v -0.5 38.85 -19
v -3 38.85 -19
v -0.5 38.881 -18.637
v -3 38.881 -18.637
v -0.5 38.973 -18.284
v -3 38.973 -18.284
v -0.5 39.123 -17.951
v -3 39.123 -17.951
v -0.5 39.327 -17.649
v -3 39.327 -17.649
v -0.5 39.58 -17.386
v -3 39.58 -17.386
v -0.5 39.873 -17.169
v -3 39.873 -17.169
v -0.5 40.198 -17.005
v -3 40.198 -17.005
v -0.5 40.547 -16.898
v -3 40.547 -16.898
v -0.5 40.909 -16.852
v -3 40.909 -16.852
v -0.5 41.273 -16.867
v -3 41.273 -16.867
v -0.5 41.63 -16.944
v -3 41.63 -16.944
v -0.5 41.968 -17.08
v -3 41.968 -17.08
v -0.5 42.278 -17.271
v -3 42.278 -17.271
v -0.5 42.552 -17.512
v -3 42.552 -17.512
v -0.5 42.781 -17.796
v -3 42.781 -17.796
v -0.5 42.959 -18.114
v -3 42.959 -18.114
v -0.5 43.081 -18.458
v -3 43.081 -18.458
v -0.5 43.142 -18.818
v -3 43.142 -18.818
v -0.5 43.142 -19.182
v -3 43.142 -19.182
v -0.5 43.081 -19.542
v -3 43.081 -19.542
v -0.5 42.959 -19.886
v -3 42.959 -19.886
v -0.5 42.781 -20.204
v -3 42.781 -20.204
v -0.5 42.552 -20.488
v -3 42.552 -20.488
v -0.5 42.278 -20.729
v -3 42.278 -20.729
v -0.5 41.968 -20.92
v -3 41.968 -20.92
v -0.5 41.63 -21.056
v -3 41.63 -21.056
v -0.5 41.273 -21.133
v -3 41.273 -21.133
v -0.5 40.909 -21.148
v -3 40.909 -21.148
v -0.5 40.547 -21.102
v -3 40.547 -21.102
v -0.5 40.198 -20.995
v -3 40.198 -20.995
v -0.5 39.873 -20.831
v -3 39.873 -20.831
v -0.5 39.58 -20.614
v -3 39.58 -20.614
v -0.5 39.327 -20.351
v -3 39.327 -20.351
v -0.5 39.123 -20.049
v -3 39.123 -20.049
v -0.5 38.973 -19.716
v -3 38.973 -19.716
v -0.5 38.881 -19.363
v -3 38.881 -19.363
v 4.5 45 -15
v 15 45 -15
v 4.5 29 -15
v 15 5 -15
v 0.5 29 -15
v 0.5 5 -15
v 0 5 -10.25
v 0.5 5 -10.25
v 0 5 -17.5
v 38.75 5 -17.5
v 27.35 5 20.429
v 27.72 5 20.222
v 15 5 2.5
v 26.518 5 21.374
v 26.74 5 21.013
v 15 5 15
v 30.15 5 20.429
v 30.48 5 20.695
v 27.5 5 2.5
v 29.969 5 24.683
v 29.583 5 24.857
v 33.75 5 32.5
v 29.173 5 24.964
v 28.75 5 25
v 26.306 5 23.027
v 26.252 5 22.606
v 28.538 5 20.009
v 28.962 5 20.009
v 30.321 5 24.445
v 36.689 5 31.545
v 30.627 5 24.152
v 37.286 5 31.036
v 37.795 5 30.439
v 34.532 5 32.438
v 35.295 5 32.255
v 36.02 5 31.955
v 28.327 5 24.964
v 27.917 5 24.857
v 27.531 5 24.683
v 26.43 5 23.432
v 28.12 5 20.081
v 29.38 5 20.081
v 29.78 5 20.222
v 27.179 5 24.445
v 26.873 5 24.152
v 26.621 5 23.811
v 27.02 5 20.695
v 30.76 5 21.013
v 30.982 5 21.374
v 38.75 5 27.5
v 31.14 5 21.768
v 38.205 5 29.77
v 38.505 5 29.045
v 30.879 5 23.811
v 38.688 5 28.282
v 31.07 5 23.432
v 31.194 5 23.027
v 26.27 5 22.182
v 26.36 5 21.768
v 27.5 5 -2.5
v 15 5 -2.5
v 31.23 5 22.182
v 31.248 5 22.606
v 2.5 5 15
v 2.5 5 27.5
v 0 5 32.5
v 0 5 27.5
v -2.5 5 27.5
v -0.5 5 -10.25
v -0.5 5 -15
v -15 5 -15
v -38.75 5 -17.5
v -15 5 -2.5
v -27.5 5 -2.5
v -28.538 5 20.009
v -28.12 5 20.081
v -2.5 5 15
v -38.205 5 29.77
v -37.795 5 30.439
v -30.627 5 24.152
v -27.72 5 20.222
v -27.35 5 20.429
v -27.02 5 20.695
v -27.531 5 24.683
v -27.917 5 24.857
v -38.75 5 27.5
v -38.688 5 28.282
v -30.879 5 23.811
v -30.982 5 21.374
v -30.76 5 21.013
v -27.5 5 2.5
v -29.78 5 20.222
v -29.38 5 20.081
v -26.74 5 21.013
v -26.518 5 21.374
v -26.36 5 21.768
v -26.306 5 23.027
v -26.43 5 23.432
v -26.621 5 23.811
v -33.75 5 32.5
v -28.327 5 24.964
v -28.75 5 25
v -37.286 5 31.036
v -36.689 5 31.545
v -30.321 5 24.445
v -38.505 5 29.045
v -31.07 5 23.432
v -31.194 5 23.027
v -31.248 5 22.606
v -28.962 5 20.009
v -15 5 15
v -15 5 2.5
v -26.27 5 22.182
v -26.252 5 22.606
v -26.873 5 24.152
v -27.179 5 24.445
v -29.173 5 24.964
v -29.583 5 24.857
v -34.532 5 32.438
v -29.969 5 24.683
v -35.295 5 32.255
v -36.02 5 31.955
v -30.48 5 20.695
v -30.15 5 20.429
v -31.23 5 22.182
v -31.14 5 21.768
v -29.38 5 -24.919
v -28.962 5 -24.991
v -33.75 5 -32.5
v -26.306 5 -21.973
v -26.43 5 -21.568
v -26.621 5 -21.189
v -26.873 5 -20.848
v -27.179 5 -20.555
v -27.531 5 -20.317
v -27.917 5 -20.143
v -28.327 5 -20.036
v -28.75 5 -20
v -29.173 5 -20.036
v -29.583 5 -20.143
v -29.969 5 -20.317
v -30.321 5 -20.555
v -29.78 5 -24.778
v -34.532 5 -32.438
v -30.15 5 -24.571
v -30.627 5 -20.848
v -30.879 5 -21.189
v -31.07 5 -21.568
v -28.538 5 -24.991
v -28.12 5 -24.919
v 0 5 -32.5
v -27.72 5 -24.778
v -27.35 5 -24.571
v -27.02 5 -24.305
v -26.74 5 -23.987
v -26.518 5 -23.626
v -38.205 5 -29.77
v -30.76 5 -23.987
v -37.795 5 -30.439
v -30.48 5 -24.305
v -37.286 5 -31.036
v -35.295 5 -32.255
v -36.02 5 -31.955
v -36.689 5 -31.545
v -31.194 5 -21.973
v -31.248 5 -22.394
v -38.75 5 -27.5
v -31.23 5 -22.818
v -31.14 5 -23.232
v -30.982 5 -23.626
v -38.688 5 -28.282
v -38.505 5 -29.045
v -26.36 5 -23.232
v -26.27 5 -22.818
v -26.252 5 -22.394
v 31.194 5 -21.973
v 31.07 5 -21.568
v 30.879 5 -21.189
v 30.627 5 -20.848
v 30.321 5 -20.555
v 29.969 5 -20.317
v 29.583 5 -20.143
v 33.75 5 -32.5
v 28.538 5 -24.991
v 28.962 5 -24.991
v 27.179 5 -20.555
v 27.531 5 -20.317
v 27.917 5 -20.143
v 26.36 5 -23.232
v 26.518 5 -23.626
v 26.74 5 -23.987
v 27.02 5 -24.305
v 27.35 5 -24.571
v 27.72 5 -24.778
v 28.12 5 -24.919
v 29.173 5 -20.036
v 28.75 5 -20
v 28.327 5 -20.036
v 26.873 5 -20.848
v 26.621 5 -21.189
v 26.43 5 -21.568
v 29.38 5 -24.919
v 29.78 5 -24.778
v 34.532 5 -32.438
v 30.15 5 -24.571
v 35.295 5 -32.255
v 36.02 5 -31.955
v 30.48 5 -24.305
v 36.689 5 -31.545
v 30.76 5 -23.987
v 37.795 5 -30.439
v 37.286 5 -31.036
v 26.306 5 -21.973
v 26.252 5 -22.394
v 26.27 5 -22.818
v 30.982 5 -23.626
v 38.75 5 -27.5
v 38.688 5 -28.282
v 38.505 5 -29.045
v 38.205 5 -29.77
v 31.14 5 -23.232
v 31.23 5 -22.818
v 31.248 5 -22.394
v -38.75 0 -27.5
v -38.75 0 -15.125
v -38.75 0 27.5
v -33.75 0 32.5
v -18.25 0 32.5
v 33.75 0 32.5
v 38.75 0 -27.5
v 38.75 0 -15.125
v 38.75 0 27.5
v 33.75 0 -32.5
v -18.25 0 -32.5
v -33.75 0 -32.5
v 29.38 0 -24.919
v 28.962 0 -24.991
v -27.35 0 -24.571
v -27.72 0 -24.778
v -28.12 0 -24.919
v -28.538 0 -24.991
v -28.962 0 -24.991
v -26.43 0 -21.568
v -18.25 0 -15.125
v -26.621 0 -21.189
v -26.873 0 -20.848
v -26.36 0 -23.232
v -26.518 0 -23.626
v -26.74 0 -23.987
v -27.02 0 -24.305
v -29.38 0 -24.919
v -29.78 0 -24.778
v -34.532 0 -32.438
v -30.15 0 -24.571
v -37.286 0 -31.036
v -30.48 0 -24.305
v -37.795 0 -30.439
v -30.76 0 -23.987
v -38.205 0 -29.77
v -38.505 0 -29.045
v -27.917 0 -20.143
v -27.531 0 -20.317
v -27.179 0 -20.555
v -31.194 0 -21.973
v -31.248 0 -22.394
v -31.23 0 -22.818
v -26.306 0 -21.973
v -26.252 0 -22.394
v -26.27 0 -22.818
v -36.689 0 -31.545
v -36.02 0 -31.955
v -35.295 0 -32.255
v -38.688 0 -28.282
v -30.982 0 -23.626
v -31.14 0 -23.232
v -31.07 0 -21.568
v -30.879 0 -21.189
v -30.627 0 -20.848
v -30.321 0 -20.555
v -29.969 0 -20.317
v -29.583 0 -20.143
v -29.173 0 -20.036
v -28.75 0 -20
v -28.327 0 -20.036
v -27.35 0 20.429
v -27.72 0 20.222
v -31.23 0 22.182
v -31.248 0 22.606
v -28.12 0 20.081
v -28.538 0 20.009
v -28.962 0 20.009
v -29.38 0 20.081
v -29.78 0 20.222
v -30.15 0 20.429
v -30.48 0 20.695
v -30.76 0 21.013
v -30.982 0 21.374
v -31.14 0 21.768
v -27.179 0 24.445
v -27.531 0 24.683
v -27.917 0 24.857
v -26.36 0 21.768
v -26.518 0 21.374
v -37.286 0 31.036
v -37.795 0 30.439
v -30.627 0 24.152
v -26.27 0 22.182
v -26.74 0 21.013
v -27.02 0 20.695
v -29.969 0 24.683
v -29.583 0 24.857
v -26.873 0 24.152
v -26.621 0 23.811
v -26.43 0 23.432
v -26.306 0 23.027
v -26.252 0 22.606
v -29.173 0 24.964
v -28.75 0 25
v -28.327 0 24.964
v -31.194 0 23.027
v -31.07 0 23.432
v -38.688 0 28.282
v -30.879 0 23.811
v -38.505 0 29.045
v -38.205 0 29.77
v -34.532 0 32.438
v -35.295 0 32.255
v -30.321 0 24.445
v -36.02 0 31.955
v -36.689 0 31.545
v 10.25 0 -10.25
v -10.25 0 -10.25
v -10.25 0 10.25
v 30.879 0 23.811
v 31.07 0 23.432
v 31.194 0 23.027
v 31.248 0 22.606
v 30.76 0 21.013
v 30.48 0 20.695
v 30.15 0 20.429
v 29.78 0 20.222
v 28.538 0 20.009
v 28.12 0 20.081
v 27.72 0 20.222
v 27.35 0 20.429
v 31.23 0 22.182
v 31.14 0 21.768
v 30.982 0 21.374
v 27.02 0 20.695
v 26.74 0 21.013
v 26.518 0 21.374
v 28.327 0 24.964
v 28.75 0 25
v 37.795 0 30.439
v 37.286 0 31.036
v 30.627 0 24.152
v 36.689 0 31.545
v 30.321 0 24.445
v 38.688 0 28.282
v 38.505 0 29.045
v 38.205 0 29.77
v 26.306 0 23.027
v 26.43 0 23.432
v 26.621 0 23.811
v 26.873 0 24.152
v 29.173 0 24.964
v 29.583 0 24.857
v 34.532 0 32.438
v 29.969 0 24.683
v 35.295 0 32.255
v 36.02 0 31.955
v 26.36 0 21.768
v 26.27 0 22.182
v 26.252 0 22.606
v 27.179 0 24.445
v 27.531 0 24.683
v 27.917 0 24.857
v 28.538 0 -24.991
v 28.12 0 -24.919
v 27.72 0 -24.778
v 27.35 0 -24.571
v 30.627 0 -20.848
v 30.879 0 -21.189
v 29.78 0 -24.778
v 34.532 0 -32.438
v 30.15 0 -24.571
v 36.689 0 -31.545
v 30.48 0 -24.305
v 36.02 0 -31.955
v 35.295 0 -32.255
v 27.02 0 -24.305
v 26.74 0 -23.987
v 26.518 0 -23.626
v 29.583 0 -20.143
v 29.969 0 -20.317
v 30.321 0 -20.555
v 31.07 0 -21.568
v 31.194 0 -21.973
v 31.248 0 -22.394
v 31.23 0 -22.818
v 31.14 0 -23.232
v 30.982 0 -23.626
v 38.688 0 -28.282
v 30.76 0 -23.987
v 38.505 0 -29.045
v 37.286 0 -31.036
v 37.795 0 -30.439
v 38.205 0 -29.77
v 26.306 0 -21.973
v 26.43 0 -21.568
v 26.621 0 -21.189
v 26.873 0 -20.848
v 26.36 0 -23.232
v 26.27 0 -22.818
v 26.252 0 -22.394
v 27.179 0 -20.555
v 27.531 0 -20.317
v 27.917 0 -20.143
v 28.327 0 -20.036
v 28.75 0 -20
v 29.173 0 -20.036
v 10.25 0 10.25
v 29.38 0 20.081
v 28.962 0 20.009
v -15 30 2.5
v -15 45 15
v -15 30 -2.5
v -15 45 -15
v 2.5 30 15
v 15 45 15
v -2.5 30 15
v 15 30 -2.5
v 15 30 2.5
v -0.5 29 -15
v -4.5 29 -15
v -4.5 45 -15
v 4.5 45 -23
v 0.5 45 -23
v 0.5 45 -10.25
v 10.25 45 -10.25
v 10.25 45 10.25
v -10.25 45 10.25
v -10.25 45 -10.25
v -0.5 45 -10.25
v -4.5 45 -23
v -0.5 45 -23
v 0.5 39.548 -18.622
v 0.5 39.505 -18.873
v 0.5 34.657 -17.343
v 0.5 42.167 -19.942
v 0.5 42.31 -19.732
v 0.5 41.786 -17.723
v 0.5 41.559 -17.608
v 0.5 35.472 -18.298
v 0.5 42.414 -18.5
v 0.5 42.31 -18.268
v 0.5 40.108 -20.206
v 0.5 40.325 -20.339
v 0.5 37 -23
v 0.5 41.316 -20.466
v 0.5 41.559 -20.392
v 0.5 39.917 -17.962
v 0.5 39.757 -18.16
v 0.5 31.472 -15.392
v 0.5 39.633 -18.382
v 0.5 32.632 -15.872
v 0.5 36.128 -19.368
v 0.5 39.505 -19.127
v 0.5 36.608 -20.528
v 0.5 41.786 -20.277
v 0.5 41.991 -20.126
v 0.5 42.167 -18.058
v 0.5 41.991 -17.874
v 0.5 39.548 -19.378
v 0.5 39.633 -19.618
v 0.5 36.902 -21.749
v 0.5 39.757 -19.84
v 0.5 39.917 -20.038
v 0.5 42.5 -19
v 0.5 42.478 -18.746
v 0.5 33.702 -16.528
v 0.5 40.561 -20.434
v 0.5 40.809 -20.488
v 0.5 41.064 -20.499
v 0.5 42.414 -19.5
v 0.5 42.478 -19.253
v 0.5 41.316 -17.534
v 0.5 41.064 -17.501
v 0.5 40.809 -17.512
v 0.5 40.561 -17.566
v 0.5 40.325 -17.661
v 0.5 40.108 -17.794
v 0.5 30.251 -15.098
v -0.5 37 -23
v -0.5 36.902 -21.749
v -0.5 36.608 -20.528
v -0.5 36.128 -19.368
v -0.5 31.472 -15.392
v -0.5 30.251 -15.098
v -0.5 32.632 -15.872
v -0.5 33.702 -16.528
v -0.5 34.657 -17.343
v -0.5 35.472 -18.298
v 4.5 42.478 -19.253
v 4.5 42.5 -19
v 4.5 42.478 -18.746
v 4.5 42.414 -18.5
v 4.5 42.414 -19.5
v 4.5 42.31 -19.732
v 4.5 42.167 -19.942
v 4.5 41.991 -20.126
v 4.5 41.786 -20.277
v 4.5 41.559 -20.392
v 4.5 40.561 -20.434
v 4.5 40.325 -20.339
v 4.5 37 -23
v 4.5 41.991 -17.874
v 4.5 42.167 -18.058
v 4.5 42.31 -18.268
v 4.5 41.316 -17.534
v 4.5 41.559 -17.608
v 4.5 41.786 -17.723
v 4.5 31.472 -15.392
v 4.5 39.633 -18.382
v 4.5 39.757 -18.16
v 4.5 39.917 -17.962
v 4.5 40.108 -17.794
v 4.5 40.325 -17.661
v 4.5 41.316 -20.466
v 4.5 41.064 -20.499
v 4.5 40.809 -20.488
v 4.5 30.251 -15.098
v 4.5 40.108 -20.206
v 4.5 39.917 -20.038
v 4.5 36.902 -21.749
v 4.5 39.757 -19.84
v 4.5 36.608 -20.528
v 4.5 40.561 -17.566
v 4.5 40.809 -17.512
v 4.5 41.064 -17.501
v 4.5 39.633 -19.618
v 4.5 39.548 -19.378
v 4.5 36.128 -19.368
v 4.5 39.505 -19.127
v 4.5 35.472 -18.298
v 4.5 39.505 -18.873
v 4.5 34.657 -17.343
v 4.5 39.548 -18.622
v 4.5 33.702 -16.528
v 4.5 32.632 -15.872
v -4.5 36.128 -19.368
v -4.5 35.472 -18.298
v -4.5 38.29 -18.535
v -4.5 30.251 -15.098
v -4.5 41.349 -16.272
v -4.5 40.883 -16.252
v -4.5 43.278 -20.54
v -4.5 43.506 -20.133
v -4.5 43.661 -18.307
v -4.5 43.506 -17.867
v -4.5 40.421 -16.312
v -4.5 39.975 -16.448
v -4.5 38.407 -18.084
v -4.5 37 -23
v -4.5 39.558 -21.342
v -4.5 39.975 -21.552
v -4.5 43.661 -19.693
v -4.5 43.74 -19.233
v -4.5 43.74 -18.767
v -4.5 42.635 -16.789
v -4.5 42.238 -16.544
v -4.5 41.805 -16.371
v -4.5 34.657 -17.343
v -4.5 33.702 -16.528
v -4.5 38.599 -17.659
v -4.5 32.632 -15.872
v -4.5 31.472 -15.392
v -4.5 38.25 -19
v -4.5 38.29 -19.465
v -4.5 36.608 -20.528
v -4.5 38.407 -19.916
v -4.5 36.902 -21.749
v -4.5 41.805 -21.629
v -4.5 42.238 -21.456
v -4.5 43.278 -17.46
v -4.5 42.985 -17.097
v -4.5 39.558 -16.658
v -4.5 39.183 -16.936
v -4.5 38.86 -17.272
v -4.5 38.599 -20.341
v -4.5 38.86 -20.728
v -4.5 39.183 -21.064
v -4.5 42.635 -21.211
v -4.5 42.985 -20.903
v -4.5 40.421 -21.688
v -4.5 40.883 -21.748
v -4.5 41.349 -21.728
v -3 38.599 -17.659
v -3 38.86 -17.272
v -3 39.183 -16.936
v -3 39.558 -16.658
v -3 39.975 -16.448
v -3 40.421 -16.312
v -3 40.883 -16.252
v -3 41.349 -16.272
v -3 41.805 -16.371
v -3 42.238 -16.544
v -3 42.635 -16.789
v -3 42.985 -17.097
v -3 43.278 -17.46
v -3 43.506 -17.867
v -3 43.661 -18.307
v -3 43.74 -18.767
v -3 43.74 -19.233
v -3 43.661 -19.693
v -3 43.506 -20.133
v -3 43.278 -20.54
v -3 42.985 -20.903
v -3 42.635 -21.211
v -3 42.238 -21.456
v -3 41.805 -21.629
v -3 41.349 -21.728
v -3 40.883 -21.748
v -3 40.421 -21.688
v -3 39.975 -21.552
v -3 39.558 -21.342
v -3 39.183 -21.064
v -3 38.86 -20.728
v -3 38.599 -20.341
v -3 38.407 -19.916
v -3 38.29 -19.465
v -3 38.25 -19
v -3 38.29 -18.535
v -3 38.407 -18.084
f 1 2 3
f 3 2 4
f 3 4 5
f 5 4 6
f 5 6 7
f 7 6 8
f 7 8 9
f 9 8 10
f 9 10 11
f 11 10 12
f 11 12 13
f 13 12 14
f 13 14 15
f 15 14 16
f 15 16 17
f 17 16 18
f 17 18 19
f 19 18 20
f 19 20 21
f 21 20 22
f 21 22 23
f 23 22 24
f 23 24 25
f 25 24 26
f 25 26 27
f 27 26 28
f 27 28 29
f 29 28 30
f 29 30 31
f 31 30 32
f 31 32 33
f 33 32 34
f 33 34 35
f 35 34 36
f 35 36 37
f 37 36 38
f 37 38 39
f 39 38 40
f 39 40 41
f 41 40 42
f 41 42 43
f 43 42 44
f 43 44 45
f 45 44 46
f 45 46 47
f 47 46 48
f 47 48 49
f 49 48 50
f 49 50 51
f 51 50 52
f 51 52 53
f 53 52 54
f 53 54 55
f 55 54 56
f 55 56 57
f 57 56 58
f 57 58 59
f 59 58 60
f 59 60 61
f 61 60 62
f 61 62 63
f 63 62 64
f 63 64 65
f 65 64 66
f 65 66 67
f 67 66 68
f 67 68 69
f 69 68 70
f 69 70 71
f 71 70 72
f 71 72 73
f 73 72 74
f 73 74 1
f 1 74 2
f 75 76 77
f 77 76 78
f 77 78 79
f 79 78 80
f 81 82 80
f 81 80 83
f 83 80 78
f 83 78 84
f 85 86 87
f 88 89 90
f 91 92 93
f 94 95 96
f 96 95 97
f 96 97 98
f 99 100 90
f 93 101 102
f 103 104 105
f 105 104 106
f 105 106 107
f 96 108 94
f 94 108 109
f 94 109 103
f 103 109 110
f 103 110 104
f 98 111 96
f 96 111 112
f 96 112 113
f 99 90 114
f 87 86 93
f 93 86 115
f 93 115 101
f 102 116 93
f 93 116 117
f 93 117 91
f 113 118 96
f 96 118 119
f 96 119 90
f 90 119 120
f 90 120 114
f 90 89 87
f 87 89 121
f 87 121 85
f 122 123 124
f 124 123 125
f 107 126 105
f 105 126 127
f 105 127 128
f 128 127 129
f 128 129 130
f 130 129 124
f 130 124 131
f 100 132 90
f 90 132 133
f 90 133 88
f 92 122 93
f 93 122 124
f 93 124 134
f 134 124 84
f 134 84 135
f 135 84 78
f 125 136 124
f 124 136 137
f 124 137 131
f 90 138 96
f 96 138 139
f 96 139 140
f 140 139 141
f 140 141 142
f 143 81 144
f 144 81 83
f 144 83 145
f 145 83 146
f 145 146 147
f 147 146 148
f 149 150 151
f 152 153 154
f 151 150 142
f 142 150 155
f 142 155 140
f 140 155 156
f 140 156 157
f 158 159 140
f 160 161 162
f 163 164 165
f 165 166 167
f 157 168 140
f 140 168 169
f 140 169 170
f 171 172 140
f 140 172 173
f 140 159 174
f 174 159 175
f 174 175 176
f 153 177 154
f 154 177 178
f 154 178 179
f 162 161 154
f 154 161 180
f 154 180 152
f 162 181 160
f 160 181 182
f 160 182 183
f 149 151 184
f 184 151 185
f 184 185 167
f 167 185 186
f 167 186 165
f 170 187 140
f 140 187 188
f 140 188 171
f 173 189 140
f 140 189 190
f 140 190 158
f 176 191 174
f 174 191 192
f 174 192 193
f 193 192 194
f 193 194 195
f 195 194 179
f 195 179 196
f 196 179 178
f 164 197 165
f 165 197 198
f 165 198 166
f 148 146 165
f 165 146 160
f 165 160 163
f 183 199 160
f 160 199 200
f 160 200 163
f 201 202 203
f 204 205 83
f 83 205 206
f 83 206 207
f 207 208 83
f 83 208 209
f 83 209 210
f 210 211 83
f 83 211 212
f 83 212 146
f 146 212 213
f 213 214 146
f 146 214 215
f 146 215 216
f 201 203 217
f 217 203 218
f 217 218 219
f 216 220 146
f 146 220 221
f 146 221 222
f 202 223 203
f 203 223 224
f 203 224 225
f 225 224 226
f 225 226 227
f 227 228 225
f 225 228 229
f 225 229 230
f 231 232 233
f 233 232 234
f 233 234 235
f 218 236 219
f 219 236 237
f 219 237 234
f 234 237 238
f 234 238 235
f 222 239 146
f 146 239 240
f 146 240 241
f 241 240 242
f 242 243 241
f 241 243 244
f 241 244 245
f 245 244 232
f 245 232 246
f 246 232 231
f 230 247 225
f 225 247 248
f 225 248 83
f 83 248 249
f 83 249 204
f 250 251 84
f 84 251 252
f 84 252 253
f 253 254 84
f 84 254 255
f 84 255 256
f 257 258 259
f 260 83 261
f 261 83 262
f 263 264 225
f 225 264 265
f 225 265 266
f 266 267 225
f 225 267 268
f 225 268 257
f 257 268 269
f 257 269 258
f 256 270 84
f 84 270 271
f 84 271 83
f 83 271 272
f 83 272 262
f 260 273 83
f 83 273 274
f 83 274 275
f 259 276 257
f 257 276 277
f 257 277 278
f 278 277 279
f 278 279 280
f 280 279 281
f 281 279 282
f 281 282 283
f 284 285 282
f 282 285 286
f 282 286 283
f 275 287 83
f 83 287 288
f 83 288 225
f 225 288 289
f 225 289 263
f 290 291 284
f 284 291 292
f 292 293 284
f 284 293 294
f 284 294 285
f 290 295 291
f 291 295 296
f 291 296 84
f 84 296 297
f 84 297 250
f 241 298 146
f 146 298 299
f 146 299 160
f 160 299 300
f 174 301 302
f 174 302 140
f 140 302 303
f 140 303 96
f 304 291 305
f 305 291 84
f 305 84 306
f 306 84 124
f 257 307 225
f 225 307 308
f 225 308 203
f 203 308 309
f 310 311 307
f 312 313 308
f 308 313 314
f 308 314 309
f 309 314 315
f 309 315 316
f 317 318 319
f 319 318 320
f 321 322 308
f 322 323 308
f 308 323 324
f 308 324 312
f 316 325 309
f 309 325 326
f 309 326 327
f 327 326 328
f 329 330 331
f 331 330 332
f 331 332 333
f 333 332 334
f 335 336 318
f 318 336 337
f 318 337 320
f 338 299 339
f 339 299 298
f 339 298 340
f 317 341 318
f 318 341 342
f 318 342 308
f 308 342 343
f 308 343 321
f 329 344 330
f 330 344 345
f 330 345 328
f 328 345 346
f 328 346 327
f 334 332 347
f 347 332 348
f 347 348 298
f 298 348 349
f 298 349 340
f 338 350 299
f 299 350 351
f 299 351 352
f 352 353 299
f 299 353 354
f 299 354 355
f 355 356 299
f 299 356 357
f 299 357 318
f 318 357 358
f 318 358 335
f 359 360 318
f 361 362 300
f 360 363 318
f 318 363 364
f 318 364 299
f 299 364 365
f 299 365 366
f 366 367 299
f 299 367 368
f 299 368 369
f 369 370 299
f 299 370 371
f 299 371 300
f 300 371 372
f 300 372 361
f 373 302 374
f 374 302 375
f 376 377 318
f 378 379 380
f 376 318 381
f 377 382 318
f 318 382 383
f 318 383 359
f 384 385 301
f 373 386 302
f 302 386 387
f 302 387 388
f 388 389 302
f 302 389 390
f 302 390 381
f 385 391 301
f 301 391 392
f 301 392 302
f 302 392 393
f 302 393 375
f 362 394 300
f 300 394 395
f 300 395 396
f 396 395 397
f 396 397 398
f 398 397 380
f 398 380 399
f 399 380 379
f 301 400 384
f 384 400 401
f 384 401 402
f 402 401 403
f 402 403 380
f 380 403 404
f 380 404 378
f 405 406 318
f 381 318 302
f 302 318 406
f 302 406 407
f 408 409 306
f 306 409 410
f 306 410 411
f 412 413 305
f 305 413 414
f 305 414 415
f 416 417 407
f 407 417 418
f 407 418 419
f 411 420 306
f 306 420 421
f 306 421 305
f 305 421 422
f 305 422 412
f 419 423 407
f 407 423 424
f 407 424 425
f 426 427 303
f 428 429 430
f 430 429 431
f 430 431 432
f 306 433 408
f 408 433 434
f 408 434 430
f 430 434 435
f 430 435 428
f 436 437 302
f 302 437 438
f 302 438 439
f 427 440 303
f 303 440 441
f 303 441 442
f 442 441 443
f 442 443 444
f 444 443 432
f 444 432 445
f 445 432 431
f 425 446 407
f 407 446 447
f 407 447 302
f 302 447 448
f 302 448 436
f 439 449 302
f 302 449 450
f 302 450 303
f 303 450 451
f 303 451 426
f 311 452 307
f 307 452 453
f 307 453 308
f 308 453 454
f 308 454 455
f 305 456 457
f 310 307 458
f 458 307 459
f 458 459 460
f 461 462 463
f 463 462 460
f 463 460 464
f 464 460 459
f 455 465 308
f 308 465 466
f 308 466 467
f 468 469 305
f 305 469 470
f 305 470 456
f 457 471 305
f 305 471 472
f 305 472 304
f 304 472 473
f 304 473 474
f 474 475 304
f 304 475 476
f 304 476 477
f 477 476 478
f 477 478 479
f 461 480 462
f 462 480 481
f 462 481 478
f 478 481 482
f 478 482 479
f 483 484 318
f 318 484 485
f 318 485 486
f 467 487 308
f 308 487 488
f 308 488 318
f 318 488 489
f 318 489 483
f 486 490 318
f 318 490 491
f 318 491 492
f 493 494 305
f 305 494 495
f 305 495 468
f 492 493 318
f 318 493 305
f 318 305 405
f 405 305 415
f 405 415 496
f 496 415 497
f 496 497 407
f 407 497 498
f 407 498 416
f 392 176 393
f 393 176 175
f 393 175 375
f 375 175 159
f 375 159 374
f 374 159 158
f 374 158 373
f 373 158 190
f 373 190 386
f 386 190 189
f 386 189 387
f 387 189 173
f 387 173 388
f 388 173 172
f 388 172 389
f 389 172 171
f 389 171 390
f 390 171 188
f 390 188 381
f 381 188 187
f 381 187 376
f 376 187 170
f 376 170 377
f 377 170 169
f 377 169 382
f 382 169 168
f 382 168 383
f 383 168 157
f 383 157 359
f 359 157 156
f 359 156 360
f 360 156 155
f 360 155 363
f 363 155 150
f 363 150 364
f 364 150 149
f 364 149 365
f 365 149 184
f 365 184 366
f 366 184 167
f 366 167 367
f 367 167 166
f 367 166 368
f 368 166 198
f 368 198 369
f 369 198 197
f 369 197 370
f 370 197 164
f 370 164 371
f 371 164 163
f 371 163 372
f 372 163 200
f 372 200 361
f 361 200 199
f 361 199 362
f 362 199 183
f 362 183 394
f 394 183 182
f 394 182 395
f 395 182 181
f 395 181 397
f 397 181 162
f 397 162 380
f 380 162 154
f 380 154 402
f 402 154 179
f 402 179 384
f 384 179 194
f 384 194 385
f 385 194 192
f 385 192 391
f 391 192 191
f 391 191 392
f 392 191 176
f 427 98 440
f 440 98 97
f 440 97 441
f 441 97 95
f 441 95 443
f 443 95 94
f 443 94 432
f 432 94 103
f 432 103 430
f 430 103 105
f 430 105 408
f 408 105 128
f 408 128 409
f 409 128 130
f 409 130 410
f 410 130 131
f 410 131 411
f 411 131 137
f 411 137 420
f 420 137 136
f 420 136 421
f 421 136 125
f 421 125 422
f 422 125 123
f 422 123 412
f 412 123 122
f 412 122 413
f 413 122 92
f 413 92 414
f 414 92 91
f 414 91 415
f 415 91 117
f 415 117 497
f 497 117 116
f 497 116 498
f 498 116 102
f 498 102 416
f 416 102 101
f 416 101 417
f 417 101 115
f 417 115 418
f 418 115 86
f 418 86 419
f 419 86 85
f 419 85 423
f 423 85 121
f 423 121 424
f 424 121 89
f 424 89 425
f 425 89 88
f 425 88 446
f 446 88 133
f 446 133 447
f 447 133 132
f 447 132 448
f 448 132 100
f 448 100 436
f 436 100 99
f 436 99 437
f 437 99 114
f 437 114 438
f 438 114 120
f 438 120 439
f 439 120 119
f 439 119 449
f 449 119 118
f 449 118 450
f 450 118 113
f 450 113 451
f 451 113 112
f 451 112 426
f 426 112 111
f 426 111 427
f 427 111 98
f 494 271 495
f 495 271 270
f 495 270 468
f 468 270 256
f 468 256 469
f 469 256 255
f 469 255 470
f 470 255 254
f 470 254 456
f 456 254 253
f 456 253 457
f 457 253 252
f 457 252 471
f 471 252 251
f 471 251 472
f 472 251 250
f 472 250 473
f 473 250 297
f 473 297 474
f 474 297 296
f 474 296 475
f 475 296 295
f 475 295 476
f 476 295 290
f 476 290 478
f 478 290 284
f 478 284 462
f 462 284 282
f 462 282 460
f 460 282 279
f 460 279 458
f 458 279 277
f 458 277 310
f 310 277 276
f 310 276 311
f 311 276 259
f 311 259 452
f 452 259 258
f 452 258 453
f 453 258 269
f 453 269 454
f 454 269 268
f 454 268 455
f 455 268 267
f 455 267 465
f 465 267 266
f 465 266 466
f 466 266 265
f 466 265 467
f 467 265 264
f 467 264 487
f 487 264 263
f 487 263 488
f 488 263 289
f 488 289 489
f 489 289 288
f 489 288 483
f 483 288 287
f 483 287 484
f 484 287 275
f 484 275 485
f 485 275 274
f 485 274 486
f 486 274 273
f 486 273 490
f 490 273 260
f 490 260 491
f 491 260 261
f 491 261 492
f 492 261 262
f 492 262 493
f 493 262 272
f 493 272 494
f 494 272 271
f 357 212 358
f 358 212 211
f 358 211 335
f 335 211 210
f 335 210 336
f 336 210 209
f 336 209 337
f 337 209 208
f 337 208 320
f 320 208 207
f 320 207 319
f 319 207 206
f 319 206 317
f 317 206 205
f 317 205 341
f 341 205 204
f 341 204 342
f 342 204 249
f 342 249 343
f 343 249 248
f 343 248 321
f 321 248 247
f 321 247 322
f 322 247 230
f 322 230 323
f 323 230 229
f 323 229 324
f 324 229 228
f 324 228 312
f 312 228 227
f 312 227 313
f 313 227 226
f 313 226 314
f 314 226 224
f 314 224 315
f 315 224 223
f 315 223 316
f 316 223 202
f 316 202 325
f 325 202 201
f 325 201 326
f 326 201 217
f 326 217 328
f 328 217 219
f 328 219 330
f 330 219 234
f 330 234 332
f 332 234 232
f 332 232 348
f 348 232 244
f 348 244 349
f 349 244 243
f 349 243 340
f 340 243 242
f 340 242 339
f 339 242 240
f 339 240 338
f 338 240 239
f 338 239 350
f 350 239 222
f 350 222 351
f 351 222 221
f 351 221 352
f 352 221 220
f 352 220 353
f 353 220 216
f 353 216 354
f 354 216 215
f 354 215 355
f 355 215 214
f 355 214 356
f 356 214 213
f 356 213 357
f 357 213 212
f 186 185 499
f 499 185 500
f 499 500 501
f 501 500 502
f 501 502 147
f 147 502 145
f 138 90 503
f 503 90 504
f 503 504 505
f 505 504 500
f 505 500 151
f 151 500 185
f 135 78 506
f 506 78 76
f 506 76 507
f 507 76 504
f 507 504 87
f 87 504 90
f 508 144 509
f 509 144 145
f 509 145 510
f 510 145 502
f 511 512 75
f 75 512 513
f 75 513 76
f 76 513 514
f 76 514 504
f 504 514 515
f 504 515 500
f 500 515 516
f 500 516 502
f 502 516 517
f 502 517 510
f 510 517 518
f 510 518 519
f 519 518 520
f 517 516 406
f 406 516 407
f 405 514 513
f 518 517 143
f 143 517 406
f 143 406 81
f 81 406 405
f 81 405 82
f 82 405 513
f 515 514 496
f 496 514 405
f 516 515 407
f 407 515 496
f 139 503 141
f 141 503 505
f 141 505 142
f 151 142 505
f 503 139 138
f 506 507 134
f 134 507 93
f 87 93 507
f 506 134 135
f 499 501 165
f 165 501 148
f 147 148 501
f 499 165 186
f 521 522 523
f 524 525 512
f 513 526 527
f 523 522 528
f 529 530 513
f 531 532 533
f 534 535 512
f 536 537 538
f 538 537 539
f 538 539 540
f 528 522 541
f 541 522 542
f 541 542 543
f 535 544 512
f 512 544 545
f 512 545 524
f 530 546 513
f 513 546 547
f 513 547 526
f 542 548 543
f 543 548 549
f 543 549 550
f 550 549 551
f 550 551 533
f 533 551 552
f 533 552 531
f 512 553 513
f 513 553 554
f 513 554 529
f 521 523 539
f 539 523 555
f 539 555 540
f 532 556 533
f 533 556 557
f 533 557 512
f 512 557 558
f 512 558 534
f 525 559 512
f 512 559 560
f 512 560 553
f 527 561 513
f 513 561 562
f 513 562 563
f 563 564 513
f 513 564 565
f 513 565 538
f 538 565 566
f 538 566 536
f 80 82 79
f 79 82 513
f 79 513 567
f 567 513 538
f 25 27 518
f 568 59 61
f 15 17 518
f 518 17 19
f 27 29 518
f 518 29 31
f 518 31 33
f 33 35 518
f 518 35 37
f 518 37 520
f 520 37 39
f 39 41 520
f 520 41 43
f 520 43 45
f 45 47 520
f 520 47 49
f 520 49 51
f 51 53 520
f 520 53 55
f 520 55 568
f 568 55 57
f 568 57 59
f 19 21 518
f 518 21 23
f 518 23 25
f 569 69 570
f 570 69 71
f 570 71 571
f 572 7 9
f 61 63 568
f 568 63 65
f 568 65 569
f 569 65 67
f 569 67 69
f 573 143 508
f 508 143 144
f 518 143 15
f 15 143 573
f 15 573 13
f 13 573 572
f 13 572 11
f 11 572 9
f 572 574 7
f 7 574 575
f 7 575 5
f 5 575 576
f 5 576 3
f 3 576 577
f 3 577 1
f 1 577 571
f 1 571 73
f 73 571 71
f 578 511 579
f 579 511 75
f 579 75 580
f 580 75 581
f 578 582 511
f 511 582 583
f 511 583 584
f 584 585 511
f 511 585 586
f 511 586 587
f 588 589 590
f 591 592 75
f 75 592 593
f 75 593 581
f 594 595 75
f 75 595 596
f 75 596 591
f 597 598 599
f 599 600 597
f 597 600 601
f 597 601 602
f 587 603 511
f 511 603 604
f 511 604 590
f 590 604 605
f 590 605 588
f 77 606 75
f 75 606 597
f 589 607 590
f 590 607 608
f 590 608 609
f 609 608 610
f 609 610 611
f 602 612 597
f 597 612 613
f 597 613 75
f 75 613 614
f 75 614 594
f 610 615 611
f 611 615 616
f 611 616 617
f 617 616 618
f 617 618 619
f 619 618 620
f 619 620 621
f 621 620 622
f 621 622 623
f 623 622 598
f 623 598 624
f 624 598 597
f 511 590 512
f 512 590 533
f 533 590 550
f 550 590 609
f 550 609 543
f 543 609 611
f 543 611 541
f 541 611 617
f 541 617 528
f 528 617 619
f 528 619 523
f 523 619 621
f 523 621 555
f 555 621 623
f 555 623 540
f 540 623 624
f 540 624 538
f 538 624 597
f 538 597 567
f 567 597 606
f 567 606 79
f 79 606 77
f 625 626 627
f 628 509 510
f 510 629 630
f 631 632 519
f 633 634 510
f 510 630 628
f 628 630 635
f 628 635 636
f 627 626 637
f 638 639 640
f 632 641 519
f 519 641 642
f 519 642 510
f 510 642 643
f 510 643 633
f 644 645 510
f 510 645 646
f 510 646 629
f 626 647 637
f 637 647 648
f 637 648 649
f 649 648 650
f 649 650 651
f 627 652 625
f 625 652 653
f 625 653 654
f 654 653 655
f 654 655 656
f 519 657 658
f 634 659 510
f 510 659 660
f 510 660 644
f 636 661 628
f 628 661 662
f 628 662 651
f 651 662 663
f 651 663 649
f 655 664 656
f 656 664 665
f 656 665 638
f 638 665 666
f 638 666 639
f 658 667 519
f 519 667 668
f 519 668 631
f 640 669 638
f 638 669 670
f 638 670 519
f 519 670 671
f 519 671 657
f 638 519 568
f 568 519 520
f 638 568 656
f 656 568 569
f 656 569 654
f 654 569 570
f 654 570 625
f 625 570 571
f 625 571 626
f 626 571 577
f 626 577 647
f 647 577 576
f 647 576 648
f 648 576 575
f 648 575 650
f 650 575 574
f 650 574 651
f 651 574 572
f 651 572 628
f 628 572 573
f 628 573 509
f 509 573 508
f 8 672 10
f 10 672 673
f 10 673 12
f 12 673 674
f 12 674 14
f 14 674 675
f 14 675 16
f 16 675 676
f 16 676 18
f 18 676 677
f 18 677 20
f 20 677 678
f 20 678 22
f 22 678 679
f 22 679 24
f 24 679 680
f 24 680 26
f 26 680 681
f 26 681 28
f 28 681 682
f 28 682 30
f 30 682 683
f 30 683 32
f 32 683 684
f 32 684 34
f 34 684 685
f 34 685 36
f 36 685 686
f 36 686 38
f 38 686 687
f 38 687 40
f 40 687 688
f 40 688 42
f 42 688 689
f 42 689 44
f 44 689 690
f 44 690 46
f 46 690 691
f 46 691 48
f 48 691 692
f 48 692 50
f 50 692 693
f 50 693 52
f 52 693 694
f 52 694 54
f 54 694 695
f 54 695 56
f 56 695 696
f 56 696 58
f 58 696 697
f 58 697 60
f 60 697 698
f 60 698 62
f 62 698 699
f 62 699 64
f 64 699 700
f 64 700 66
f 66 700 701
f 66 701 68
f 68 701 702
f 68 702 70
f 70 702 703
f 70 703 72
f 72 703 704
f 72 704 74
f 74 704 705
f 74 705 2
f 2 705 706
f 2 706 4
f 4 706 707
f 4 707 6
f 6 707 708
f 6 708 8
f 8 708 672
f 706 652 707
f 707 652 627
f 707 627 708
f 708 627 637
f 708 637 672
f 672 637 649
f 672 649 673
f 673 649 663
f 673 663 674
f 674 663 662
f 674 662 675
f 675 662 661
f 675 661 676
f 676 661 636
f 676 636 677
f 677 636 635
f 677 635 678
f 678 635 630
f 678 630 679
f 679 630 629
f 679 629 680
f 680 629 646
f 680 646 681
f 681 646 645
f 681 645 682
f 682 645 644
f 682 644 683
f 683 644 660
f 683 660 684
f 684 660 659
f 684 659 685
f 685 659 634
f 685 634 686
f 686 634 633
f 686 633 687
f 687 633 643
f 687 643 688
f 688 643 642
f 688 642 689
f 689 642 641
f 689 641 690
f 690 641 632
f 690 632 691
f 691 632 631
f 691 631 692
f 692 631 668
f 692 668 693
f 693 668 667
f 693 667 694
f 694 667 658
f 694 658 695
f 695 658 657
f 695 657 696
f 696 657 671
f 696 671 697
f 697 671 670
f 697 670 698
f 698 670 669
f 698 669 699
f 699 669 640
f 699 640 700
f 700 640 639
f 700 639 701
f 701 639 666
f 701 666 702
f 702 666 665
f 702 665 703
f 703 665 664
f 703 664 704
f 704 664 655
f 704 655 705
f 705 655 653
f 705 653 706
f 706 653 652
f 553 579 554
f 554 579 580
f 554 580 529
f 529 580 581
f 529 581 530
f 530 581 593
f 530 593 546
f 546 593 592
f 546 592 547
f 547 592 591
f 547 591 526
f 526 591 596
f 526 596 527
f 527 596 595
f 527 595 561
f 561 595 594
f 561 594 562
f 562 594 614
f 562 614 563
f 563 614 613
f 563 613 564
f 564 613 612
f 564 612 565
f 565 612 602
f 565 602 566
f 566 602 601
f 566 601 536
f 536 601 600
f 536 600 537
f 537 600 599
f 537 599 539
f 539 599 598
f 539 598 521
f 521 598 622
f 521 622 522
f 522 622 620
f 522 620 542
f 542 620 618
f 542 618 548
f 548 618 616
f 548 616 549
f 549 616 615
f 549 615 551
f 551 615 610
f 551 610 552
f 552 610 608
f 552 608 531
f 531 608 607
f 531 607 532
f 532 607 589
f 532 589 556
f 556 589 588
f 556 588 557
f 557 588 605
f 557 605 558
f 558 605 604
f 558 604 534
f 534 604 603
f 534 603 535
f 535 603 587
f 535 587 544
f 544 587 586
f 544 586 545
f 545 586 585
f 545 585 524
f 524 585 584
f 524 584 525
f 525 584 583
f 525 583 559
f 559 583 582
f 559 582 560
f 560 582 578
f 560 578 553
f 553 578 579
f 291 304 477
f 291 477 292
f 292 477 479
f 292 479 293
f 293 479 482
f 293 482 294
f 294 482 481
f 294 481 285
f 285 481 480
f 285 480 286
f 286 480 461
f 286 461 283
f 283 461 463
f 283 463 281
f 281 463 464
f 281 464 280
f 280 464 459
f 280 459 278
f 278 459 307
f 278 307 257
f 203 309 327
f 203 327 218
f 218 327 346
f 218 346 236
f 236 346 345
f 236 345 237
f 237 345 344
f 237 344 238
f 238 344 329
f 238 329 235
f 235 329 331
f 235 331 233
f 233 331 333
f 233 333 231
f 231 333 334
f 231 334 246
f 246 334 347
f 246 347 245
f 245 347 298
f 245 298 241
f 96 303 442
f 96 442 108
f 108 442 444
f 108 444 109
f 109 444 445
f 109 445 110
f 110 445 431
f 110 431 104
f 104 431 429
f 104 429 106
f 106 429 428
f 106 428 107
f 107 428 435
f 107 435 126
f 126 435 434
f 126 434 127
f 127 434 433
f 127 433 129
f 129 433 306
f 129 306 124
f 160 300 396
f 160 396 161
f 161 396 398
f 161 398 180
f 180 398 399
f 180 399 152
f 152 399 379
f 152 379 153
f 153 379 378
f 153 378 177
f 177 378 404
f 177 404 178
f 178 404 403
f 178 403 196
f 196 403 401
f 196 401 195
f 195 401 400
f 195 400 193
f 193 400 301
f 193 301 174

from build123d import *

# Parameters (mm, degrees)
SKETCH1_W                = 77.5
SKETCH1_H                = 65
BOSS_EXTRUDE1_DEPTH      = 5
F_5_0_5_DIAMETER_HOLE1_D = 5
SKETCH4_W                = 30
SKETCH4_H                = 30
BOSS_EXTRUDE2_DEPTH      = 40
CUT_EXTRUDE1_REACH       = 69.696
SKETCH5_W                = 20.5
SKETCH5_H                = 20.5
BOSS_EXTRUDE3_DEPTH      = 2.5
CIRPATTERN1_COUNT        = 2
CIRPATTERN1_ANGLE        = 90
CIRPATTERN2_COUNT        = 2
CIRPATTERN2_ANGLE        = 90
CUT_EXTRUDE4_REACH       = 78.045
SKETCH11_W               = 1
SKETCH11_H               = 40
SKETCH12_W               = 4
SKETCH12_H               = 8
BOSS_EXTRUDE5_DEPTH      = 8
FILLET3_R                = 8
FILLET3_OF_MIRROR2_R     = 8
CUT_EXTRUDE5_REACH       = 72.369
SKETCH13_R               = 2.15
SKETCH14_R               = 2.75
CUT_EXTRUDE6_DEPTH       = 1.5
CUT_EXTRUDE7_REACH       = 72.369
SKETCH15_R               = 1.5
FILLET1_R                = 5


with BuildPart() as part:
    # Sketch1 → Boss-Extrude1 (new body)
    with BuildSketch(Plane(origin=(0, 0, 0), x_dir=(1, 0, 0), z_dir=(0, 1, 0))):
        Rectangle(SKETCH1_W, SKETCH1_H)
    extrude(amount=BOSS_EXTRUDE1_DEPTH)

    # Ø5.0 (5) Diameter Hole1 (through all)
    with Locations(Plane(origin=(-28.75, 5, -22.5), x_dir=(0, 0, 1), z_dir=(0, 1, 0))):
        with Locations((0, 0), (0, 57.5), (45, 57.5), (45, 0)):
            Hole(F_5_0_5_DIAMETER_HOLE1_D / 2)

    # Sketch4 → Boss-Extrude2 (add)
    with BuildSketch(Plane(origin=(0, 5, 0), x_dir=(1, 0, 0), z_dir=(0, 1, 0))):
        Rectangle(SKETCH4_W, SKETCH4_H)
    extrude(amount=BOSS_EXTRUDE2_DEPTH)

    # Sketch5 → Cut-Extrude1 (cut, up to next)
    with BuildSketch(Plane(origin=(0, 45, 0), x_dir=(1, 0, 0), z_dir=(0, 1, 0)), mode=Mode.PRIVATE) as cut_extrude1_sk1:
        Rectangle(SKETCH5_W, SKETCH5_H)
    cut_extrude1_tool1 = extrude(cut_extrude1_sk1.sketch, amount=-CUT_EXTRUDE1_REACH, mode=Mode.PRIVATE) & part.part
    add(cut_extrude1_tool1.solids().sort_by_distance((0, 45, 0))[0], mode=Mode.SUBTRACT)

    # Sketch7 → Boss-Extrude3 (add, symmetric)
    with BuildSketch(Plane(origin=(0, 0, 0), x_dir=(0, 0, -1), z_dir=(1, 0, 0))):
        Polygon((-15, 30), (-27.5, 5), (-15, 5), align=None)
    boss_extrude3 = extrude(amount=BOSS_EXTRUDE3_DEPTH, both=True)

    # CirPattern1: Boss-Extrude3 ×2 about axis
    cirpattern1_axis = Axis((0, 0, 0), (0, 1, 0))
    for i in range(1, CIRPATTERN1_COUNT):
        add(boss_extrude3.rotate(cirpattern1_axis, i * CIRPATTERN1_ANGLE / (CIRPATTERN1_COUNT - 1)))

    # CirPattern2: Boss-Extrude3 ×2 about axis
    cirpattern2_axis = Axis((0, 0, 0), (0, -1, 0))
    for i in range(1, CIRPATTERN2_COUNT):
        add(boss_extrude3.rotate(cirpattern2_axis, i * CIRPATTERN2_ANGLE / (CIRPATTERN2_COUNT - 1)))

    # Sketch11 → Cut-Extrude4 (cut, up to next)
    with BuildSketch(Plane(origin=(0, 0, -15), x_dir=(-1, 0, 0), z_dir=(0, 0, -1)), mode=Mode.PRIVATE) as cut_extrude4_sk1:
        with Locations((0, 25)):
            Rectangle(SKETCH11_W, SKETCH11_H)
    cut_extrude4_tool1 = extrude(cut_extrude4_sk1.sketch, amount=-CUT_EXTRUDE4_REACH, mode=Mode.PRIVATE) & part.part
    add(cut_extrude4_tool1.solids().sort_by_distance((0, 25, -15))[0], mode=Mode.SUBTRACT)

    # Sketch12 → Boss-Extrude5 (add)
    with BuildSketch(Plane(origin=(0, 0, -15), x_dir=(-1, 0, 0), z_dir=(0, 0, -1))):
        with Locations((-2.5, 41)):
            Rectangle(SKETCH12_W, SKETCH12_H)
    boss_extrude5 = extrude(amount=BOSS_EXTRUDE5_DEPTH)

    # Fillet3
    fillet3_edges = [part.edges().sort_by_distance(p)[0] for p in [
        (2.5, 37, -15),
    ]]
    fillet(fillet3_edges, radius=FILLET3_R - 0.0001)  # a hair under: the kernel refuses the full size

    # Mirror2: Boss-Extrude5 across plane
    add(boss_extrude5.mirror(Plane(origin=(0, 0, 0), x_dir=(0, 0, 1), z_dir=(1, 0, 0))))

    # Fillet3 of Mirror2
    fillet3_of_mirror2_edges = [part.edges().sort_by_distance(p)[0] for p in [
        (-2.5, 37, -15),
    ]]
    fillet(fillet3_of_mirror2_edges, radius=FILLET3_OF_MIRROR2_R - 0.0001)  # a hair under: the kernel refuses the full size

    # Sketch13 → Cut-Extrude5 (cut, up to next)
    with BuildSketch(Plane.ZY.offset(4.5), mode=Mode.PRIVATE) as cut_extrude5_sk1:
        with Locations(Location((-19, 41, 0), (0, 0, 270))):
            Circle(SKETCH13_R)
    cut_extrude5_tool1 = extrude(cut_extrude5_sk1.sketch, amount=-CUT_EXTRUDE5_REACH, mode=Mode.PRIVATE) & part.part
    add(cut_extrude5_tool1.solids().sort_by_distance((-4.5, 41, -19))[0], mode=Mode.SUBTRACT)

    # Sketch14 → Cut-Extrude6 (cut)
    with BuildSketch(Plane.ZY.offset(4.5)):
        with Locations(Location((-19, 41, 0), (0, 0, 270))):
            Circle(SKETCH14_R)
    extrude(amount=-CUT_EXTRUDE6_DEPTH, mode=Mode.SUBTRACT)

    # Sketch15 → Cut-Extrude7 (cut, up to next)
    with BuildSketch(Plane(origin=(4.5, 0, 0), x_dir=(0, 0, -1), z_dir=(1, 0, 0)), mode=Mode.PRIVATE) as cut_extrude7_sk1:
        with Locations(Location((19, 41, 0), (0, 0, 90))):
            Circle(SKETCH15_R)
    cut_extrude7_tool1 = extrude(cut_extrude7_sk1.sketch, amount=-CUT_EXTRUDE7_REACH, mode=Mode.PRIVATE) & part.part
    add(cut_extrude7_tool1.solids().sort_by_distance((4.5, 41, -19))[0], mode=Mode.SUBTRACT)

    # Fillet1
    fillet1_edges = [part.edges().sort_by_distance(p)[0] for p in [
        (-38.75, 2.5, -32.5),
        (38.75, 2.5, -32.5),
        (38.75, 2.5, 32.5),
        (-38.75, 2.5, 32.5),
    ]]
    fillet(fillet1_edges, radius=FILLET1_R)


solid = part.part
